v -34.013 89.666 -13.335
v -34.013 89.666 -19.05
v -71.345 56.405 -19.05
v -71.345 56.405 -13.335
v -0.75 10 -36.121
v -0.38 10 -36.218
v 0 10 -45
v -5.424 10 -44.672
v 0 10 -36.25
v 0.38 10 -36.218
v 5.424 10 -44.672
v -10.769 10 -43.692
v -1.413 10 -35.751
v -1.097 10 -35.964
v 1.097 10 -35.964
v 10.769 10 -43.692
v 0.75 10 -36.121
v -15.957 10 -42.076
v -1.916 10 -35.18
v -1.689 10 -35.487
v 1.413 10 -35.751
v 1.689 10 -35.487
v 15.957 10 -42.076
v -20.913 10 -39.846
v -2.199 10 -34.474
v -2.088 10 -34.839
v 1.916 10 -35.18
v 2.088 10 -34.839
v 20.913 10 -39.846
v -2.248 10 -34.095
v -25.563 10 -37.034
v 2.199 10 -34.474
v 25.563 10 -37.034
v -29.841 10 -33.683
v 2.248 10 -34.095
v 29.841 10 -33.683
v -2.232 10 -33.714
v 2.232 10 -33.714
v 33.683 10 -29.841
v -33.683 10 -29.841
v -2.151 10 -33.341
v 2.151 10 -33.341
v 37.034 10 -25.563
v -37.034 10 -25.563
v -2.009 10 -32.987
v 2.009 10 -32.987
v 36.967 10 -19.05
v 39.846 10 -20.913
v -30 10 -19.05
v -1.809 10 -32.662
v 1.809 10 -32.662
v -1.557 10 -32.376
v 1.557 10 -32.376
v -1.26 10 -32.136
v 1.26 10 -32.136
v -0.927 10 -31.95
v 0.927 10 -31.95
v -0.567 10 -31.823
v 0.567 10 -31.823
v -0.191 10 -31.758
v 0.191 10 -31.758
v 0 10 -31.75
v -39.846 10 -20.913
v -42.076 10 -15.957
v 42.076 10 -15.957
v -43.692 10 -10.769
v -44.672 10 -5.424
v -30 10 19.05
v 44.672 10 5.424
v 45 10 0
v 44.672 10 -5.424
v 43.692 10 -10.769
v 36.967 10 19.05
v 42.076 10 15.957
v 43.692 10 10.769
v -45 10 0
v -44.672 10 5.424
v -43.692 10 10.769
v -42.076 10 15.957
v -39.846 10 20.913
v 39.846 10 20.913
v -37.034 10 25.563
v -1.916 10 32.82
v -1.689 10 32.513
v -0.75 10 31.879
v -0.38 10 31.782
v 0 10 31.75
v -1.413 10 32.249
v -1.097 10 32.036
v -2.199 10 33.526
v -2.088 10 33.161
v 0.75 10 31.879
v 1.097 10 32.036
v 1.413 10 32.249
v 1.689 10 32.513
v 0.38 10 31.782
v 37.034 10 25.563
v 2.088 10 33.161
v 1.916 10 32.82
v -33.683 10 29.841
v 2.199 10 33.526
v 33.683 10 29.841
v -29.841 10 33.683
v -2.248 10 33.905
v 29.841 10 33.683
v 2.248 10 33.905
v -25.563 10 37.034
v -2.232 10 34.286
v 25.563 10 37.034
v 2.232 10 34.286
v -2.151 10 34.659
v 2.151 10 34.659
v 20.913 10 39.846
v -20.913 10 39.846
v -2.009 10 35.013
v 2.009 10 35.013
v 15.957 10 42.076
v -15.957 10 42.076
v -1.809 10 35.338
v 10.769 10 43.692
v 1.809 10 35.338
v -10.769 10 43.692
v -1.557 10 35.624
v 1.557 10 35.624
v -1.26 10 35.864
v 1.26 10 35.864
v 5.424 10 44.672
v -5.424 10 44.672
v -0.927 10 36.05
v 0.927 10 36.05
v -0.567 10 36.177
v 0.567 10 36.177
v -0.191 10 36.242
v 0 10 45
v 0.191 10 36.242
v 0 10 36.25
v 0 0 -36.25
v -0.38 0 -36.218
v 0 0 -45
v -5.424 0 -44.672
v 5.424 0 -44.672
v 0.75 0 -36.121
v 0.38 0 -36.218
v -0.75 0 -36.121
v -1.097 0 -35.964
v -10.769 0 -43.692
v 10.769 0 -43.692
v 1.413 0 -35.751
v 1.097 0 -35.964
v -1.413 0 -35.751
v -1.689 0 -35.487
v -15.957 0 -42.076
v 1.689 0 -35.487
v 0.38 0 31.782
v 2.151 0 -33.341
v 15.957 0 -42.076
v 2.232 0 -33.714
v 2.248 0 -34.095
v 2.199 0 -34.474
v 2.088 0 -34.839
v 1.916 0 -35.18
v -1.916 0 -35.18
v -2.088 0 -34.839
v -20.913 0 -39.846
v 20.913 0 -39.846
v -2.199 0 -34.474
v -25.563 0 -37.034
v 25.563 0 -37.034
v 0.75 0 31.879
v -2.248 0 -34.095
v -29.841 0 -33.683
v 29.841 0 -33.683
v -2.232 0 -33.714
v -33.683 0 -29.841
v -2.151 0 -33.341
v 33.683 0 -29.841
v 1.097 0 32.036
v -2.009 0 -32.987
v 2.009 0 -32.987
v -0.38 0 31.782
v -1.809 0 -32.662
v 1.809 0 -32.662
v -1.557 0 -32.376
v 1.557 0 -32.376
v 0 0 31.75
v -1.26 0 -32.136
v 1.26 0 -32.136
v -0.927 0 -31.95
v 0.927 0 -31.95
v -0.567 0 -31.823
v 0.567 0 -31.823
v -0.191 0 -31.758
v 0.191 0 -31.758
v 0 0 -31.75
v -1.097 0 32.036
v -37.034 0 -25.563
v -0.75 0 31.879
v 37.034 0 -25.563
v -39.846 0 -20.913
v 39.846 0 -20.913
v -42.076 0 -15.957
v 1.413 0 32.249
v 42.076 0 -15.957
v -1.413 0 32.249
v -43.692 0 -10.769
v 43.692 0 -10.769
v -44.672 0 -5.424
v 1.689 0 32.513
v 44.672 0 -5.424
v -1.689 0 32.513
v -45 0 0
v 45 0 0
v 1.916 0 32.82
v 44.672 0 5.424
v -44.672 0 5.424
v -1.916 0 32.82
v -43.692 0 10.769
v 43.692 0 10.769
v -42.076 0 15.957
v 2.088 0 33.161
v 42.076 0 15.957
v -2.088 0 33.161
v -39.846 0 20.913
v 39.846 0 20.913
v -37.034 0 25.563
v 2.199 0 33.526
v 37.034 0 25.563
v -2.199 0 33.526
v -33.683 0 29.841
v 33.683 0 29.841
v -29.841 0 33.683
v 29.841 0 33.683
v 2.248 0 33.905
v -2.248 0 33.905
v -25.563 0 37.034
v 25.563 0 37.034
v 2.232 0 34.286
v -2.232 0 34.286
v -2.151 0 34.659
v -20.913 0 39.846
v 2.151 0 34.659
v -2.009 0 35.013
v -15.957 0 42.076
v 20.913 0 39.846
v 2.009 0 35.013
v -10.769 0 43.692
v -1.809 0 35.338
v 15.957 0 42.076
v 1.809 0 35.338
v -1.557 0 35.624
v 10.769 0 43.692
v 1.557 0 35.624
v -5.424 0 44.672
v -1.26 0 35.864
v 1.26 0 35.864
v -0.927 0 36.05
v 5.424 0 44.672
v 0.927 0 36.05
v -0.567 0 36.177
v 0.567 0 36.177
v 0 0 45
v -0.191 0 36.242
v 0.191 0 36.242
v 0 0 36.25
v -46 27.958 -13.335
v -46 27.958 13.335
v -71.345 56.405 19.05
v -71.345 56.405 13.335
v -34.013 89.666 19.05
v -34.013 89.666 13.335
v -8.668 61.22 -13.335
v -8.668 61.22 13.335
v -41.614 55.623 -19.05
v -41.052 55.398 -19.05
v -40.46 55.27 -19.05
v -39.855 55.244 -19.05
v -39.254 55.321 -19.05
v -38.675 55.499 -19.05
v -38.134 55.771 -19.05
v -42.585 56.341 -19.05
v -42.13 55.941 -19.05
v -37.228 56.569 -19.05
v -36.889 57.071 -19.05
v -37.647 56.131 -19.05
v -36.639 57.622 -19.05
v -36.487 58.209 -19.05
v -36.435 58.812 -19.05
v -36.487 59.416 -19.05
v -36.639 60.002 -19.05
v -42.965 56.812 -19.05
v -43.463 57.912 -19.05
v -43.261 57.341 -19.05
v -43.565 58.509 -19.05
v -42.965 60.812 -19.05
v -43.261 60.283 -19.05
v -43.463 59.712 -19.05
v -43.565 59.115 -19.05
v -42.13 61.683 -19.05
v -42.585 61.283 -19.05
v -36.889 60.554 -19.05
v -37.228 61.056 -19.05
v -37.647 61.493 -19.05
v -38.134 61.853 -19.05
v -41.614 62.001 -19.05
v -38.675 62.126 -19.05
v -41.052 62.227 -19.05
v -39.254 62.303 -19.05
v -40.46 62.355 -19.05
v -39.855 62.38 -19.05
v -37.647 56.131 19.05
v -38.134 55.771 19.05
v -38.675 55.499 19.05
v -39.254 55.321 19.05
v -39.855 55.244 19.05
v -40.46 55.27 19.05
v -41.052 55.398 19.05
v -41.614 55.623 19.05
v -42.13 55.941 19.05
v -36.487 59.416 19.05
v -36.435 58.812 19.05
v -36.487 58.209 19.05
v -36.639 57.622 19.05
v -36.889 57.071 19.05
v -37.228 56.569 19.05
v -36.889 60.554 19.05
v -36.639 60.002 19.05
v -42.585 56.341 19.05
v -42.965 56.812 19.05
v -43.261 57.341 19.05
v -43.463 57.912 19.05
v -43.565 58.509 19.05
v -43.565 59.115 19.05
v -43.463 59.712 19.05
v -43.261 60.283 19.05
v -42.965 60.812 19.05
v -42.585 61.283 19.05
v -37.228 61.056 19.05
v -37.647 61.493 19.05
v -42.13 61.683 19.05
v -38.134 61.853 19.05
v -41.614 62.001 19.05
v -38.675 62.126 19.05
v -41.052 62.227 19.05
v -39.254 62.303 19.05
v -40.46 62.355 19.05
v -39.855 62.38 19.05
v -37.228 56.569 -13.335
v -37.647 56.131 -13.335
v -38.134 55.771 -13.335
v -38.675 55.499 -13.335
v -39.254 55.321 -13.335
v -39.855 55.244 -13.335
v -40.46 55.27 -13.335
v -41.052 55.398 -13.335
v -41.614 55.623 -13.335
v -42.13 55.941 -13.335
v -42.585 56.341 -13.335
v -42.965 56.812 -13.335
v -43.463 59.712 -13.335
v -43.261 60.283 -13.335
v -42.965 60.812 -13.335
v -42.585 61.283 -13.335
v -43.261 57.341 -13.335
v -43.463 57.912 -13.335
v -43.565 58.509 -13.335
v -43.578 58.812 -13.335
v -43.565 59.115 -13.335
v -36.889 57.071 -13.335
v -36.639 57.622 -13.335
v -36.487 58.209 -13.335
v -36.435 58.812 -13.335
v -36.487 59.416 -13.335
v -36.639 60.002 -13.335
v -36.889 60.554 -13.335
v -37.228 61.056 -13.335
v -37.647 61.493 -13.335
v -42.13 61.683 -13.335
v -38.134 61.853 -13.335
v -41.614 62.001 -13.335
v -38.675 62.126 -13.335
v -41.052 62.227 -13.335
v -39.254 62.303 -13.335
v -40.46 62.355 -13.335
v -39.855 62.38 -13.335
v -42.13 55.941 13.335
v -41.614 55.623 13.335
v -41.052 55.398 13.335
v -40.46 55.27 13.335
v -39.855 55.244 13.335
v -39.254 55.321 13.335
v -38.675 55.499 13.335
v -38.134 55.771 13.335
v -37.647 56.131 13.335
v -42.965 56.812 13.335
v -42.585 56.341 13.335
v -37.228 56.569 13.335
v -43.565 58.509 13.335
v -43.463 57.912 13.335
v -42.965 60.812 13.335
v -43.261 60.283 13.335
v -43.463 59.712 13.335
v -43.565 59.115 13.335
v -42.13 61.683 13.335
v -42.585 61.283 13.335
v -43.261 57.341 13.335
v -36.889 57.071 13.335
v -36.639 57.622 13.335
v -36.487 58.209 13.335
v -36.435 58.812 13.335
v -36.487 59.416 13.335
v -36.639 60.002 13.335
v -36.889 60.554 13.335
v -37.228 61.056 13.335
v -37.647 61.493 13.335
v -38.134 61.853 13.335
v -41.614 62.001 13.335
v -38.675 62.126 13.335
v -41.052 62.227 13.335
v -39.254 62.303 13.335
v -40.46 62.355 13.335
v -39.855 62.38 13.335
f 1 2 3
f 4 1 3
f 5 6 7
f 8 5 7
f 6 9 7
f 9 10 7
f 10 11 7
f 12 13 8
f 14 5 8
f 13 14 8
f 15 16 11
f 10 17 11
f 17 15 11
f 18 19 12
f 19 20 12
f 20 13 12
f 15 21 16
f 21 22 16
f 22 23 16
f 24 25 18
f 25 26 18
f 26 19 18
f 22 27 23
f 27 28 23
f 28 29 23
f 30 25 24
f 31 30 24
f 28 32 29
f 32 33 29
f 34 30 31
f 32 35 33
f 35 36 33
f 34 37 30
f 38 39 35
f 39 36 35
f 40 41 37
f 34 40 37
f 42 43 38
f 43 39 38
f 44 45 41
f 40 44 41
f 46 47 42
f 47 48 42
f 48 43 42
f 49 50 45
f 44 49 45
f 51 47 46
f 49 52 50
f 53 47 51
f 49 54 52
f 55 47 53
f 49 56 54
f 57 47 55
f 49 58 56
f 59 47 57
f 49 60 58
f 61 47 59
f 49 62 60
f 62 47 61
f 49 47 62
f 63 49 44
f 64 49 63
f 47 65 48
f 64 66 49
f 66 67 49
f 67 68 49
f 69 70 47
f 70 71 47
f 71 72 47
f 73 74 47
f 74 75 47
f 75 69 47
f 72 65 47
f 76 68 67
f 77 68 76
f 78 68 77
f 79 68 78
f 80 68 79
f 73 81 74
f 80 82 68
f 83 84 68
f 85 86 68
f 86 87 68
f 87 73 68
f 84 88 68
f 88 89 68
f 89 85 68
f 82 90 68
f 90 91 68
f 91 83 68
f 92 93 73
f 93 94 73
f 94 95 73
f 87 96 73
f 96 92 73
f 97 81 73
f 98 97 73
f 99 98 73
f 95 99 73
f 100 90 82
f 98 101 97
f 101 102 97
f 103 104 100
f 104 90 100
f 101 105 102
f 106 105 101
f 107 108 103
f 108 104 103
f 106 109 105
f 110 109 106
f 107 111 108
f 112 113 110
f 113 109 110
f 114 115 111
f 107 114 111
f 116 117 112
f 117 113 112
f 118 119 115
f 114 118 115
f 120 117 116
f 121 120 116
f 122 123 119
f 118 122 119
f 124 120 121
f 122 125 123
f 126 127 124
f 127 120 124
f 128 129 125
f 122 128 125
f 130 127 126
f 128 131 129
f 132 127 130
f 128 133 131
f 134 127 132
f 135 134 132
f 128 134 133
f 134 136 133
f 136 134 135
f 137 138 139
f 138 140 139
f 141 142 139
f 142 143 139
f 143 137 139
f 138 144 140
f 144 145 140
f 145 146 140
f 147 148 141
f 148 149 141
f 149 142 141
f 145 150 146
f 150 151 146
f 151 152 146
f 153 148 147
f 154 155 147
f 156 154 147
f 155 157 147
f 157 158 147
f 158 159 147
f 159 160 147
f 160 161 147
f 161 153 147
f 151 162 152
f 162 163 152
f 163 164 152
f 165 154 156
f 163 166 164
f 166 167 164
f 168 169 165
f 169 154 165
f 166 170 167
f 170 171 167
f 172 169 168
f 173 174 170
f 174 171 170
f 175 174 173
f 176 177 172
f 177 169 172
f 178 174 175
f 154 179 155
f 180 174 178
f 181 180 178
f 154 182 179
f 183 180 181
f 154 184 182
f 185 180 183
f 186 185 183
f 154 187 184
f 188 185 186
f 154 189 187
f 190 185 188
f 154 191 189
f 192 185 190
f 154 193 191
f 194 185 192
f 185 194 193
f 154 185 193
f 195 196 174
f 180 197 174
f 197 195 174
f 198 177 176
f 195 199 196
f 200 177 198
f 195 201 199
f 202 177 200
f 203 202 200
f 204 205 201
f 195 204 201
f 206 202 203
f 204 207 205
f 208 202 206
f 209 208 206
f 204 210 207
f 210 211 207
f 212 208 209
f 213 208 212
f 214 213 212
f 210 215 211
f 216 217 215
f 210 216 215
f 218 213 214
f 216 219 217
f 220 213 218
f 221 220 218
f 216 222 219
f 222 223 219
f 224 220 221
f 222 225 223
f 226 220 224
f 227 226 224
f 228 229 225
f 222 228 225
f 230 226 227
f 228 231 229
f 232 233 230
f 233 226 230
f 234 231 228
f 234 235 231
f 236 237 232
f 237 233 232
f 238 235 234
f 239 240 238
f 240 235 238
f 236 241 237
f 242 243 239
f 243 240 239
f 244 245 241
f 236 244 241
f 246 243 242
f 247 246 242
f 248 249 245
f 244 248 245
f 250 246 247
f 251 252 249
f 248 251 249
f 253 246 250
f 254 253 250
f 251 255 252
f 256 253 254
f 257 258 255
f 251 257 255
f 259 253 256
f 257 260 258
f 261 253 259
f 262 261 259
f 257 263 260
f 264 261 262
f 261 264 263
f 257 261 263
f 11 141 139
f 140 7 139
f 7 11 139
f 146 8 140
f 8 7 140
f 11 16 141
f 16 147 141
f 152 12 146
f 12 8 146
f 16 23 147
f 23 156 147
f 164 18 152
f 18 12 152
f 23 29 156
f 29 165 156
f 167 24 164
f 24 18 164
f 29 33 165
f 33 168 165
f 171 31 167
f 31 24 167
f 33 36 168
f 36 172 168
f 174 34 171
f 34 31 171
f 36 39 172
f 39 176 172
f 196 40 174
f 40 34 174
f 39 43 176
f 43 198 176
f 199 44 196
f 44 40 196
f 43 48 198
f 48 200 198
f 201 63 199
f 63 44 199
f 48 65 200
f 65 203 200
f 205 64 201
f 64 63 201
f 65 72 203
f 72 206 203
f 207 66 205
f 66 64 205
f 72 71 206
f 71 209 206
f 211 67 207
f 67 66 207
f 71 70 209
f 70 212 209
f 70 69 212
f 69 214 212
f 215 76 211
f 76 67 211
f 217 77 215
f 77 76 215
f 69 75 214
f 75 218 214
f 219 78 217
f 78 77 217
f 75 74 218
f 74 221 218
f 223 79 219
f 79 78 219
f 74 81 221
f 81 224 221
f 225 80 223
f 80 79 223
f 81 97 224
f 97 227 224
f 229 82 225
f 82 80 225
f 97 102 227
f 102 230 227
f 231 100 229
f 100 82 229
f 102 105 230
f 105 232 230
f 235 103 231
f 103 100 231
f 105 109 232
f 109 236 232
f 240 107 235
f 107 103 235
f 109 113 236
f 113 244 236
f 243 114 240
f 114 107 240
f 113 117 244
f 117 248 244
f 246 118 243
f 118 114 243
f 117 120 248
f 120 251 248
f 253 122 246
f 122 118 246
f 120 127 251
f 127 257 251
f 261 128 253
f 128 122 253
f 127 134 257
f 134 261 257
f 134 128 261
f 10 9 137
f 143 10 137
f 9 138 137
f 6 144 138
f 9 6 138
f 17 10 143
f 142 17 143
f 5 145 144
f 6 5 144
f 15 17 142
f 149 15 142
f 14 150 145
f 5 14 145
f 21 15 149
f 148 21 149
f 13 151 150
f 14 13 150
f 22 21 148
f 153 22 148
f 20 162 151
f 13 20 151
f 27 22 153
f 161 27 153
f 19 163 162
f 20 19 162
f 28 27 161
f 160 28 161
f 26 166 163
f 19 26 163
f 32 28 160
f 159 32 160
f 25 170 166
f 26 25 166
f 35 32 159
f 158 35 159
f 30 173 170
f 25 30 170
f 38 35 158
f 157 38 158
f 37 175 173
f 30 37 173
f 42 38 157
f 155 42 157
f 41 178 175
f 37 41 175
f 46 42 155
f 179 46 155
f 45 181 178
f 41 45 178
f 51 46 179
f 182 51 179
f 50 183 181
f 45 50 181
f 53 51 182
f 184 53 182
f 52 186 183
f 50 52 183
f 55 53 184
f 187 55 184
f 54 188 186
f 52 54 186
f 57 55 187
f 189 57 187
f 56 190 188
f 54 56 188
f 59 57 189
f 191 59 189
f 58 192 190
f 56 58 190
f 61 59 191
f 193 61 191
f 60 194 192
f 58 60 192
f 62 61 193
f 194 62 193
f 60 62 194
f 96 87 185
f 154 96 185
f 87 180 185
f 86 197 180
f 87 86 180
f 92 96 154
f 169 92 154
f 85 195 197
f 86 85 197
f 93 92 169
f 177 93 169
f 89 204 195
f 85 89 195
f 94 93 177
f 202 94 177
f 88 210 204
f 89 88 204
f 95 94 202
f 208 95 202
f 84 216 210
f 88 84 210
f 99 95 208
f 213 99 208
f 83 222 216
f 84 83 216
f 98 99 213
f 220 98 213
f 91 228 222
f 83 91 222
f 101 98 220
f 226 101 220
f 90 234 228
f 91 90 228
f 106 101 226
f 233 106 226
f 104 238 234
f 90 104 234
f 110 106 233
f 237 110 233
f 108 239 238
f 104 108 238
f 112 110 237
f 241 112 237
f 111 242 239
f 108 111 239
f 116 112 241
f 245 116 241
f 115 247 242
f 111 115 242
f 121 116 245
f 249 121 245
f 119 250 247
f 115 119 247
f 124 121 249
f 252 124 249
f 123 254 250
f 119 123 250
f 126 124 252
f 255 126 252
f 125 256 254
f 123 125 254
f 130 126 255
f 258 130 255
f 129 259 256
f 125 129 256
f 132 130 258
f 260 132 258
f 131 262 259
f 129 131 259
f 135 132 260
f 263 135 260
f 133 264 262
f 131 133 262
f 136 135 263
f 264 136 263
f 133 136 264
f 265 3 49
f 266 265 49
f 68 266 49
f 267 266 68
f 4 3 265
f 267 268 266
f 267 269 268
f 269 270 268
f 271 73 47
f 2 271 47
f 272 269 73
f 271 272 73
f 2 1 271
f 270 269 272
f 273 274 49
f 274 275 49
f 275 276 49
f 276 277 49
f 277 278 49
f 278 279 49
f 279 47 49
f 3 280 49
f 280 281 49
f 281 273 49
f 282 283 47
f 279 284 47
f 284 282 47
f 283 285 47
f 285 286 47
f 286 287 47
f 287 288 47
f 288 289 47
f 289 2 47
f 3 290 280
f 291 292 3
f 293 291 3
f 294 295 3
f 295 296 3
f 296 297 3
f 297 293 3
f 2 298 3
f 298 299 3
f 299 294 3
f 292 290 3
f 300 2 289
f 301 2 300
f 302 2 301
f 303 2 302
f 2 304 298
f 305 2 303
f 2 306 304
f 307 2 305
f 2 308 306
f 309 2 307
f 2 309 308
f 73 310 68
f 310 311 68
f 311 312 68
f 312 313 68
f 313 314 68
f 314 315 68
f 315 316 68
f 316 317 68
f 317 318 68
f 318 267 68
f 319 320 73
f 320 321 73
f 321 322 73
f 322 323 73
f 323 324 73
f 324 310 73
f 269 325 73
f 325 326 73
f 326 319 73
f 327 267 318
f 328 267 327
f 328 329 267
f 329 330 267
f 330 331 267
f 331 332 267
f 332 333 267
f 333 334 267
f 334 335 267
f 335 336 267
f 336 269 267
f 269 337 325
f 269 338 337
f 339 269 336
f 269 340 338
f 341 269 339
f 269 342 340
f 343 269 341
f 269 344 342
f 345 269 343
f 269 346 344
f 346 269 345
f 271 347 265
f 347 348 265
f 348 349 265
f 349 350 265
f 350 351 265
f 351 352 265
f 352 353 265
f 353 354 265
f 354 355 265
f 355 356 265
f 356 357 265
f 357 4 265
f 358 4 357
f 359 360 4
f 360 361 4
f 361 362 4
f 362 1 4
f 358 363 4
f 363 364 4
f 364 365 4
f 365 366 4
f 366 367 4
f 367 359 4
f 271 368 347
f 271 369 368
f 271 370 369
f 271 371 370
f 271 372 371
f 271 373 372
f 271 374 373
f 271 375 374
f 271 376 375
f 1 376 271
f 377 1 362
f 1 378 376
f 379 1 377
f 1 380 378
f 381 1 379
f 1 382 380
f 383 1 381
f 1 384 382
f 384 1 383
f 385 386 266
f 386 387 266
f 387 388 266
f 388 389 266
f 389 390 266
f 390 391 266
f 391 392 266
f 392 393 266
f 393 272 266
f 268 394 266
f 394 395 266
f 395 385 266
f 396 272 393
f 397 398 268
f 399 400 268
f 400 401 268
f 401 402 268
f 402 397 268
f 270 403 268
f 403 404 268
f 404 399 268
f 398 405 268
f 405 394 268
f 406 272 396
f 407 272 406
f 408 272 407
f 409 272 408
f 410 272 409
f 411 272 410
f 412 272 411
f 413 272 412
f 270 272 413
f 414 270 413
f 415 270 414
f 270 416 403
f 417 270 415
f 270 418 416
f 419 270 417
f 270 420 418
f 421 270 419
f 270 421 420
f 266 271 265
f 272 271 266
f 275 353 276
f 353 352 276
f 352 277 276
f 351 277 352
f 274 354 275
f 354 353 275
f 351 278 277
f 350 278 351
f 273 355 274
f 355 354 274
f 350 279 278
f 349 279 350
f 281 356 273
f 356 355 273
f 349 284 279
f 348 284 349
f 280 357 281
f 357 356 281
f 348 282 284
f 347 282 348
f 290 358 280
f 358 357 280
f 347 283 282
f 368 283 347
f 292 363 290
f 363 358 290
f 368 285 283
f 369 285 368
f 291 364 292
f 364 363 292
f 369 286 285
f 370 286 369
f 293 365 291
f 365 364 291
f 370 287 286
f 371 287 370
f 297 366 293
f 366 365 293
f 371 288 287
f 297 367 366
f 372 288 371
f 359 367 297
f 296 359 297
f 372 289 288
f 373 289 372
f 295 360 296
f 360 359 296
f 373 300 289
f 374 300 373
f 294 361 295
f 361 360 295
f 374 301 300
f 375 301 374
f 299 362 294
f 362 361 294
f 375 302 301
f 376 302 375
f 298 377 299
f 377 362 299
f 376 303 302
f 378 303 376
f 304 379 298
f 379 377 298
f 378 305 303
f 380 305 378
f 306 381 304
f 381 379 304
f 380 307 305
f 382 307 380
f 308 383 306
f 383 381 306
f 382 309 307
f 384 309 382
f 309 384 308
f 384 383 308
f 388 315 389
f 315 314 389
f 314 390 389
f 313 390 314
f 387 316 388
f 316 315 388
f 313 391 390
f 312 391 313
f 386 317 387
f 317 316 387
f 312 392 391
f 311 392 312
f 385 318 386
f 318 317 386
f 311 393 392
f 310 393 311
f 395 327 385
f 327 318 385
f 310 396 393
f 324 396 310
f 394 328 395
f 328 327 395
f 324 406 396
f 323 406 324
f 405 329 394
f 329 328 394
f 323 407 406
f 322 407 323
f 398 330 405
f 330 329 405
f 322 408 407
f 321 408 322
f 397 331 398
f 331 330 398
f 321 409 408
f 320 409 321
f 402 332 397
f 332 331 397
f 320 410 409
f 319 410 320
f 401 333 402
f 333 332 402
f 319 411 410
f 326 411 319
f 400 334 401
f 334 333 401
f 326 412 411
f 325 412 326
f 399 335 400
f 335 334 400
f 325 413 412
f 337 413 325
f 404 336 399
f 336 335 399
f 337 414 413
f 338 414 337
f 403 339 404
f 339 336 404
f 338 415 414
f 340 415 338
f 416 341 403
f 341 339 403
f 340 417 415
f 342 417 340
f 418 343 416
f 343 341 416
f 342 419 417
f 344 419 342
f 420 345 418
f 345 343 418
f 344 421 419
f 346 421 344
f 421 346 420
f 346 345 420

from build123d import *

# Parameters (mm, degrees)
SKETCH1_R                = 45
SKETCH1_R_2              = 2.25
BOSS_EXTRUDE1_DEPTH      = 10
BOSS_EXTRUDE2_DEPTH      = 19.05
BOSS_EXTRUDE2_DEPTH_BACK = 19.05
SKETCH3_W                = 50
SKETCH3_H                = 26.67
CUT_EXTRUDE1_DEPTH       = 38.1
F_1_4_CLEARANCE_HOLE1_D  = 7.14248


with BuildPart() as part:
    # Sketch1 → Boss-Extrude1 (new body)
    with BuildSketch(Plane(origin=(0, 0, 0), x_dir=(1, 0, 0), z_dir=(0, 1, 0))):
        Circle(SKETCH1_R)
        with Locations((0, 34)):
            Circle(SKETCH1_R_2, mode=Mode.SUBTRACT)
        with Locations((0, -34)):
            Circle(SKETCH1_R_2, mode=Mode.SUBTRACT)
    extrude(amount=BOSS_EXTRUDE1_DEPTH)

    # Sketch2 → Boss-Extrude2 (add, two sides: drawn at the far end of the back side and taken through both)
    with BuildSketch(Plane.XY.offset(-BOSS_EXTRUDE2_DEPTH_BACK)):
        Polygon((36.966840414, 10), (-34.013367398, 89.666438803), (-71.345276512, 56.40492107), (-30, 10), align=None)
    extrude(amount=BOSS_EXTRUDE2_DEPTH + BOSS_EXTRUDE2_DEPTH_BACK)

    # Sketch3 → Cut-Extrude1 (cut)
    with BuildSketch(Plane(origin=(-59.588083083, 66.880198307, 0), x_dir=(0.7466381822853925, 0.6652303546543595, 0), z_dir=(-0.6652303546543595, 0.7466381822853925, 0))):
        with Locations((9.253158078, 0)):
            Rectangle(SKETCH3_W, SKETCH3_H)
    extrude(amount=-CUT_EXTRUDE1_DEPTH, mode=Mode.SUBTRACT)

    # 1/4 Clearance Hole1 (through all)
    with Locations(Plane.XY.offset(19.05)):
        with Locations((-40.006683699, 58.812222564)):
            Hole(F_1_4_CLEARANCE_HOLE1_D / 2)


solid = part.part
